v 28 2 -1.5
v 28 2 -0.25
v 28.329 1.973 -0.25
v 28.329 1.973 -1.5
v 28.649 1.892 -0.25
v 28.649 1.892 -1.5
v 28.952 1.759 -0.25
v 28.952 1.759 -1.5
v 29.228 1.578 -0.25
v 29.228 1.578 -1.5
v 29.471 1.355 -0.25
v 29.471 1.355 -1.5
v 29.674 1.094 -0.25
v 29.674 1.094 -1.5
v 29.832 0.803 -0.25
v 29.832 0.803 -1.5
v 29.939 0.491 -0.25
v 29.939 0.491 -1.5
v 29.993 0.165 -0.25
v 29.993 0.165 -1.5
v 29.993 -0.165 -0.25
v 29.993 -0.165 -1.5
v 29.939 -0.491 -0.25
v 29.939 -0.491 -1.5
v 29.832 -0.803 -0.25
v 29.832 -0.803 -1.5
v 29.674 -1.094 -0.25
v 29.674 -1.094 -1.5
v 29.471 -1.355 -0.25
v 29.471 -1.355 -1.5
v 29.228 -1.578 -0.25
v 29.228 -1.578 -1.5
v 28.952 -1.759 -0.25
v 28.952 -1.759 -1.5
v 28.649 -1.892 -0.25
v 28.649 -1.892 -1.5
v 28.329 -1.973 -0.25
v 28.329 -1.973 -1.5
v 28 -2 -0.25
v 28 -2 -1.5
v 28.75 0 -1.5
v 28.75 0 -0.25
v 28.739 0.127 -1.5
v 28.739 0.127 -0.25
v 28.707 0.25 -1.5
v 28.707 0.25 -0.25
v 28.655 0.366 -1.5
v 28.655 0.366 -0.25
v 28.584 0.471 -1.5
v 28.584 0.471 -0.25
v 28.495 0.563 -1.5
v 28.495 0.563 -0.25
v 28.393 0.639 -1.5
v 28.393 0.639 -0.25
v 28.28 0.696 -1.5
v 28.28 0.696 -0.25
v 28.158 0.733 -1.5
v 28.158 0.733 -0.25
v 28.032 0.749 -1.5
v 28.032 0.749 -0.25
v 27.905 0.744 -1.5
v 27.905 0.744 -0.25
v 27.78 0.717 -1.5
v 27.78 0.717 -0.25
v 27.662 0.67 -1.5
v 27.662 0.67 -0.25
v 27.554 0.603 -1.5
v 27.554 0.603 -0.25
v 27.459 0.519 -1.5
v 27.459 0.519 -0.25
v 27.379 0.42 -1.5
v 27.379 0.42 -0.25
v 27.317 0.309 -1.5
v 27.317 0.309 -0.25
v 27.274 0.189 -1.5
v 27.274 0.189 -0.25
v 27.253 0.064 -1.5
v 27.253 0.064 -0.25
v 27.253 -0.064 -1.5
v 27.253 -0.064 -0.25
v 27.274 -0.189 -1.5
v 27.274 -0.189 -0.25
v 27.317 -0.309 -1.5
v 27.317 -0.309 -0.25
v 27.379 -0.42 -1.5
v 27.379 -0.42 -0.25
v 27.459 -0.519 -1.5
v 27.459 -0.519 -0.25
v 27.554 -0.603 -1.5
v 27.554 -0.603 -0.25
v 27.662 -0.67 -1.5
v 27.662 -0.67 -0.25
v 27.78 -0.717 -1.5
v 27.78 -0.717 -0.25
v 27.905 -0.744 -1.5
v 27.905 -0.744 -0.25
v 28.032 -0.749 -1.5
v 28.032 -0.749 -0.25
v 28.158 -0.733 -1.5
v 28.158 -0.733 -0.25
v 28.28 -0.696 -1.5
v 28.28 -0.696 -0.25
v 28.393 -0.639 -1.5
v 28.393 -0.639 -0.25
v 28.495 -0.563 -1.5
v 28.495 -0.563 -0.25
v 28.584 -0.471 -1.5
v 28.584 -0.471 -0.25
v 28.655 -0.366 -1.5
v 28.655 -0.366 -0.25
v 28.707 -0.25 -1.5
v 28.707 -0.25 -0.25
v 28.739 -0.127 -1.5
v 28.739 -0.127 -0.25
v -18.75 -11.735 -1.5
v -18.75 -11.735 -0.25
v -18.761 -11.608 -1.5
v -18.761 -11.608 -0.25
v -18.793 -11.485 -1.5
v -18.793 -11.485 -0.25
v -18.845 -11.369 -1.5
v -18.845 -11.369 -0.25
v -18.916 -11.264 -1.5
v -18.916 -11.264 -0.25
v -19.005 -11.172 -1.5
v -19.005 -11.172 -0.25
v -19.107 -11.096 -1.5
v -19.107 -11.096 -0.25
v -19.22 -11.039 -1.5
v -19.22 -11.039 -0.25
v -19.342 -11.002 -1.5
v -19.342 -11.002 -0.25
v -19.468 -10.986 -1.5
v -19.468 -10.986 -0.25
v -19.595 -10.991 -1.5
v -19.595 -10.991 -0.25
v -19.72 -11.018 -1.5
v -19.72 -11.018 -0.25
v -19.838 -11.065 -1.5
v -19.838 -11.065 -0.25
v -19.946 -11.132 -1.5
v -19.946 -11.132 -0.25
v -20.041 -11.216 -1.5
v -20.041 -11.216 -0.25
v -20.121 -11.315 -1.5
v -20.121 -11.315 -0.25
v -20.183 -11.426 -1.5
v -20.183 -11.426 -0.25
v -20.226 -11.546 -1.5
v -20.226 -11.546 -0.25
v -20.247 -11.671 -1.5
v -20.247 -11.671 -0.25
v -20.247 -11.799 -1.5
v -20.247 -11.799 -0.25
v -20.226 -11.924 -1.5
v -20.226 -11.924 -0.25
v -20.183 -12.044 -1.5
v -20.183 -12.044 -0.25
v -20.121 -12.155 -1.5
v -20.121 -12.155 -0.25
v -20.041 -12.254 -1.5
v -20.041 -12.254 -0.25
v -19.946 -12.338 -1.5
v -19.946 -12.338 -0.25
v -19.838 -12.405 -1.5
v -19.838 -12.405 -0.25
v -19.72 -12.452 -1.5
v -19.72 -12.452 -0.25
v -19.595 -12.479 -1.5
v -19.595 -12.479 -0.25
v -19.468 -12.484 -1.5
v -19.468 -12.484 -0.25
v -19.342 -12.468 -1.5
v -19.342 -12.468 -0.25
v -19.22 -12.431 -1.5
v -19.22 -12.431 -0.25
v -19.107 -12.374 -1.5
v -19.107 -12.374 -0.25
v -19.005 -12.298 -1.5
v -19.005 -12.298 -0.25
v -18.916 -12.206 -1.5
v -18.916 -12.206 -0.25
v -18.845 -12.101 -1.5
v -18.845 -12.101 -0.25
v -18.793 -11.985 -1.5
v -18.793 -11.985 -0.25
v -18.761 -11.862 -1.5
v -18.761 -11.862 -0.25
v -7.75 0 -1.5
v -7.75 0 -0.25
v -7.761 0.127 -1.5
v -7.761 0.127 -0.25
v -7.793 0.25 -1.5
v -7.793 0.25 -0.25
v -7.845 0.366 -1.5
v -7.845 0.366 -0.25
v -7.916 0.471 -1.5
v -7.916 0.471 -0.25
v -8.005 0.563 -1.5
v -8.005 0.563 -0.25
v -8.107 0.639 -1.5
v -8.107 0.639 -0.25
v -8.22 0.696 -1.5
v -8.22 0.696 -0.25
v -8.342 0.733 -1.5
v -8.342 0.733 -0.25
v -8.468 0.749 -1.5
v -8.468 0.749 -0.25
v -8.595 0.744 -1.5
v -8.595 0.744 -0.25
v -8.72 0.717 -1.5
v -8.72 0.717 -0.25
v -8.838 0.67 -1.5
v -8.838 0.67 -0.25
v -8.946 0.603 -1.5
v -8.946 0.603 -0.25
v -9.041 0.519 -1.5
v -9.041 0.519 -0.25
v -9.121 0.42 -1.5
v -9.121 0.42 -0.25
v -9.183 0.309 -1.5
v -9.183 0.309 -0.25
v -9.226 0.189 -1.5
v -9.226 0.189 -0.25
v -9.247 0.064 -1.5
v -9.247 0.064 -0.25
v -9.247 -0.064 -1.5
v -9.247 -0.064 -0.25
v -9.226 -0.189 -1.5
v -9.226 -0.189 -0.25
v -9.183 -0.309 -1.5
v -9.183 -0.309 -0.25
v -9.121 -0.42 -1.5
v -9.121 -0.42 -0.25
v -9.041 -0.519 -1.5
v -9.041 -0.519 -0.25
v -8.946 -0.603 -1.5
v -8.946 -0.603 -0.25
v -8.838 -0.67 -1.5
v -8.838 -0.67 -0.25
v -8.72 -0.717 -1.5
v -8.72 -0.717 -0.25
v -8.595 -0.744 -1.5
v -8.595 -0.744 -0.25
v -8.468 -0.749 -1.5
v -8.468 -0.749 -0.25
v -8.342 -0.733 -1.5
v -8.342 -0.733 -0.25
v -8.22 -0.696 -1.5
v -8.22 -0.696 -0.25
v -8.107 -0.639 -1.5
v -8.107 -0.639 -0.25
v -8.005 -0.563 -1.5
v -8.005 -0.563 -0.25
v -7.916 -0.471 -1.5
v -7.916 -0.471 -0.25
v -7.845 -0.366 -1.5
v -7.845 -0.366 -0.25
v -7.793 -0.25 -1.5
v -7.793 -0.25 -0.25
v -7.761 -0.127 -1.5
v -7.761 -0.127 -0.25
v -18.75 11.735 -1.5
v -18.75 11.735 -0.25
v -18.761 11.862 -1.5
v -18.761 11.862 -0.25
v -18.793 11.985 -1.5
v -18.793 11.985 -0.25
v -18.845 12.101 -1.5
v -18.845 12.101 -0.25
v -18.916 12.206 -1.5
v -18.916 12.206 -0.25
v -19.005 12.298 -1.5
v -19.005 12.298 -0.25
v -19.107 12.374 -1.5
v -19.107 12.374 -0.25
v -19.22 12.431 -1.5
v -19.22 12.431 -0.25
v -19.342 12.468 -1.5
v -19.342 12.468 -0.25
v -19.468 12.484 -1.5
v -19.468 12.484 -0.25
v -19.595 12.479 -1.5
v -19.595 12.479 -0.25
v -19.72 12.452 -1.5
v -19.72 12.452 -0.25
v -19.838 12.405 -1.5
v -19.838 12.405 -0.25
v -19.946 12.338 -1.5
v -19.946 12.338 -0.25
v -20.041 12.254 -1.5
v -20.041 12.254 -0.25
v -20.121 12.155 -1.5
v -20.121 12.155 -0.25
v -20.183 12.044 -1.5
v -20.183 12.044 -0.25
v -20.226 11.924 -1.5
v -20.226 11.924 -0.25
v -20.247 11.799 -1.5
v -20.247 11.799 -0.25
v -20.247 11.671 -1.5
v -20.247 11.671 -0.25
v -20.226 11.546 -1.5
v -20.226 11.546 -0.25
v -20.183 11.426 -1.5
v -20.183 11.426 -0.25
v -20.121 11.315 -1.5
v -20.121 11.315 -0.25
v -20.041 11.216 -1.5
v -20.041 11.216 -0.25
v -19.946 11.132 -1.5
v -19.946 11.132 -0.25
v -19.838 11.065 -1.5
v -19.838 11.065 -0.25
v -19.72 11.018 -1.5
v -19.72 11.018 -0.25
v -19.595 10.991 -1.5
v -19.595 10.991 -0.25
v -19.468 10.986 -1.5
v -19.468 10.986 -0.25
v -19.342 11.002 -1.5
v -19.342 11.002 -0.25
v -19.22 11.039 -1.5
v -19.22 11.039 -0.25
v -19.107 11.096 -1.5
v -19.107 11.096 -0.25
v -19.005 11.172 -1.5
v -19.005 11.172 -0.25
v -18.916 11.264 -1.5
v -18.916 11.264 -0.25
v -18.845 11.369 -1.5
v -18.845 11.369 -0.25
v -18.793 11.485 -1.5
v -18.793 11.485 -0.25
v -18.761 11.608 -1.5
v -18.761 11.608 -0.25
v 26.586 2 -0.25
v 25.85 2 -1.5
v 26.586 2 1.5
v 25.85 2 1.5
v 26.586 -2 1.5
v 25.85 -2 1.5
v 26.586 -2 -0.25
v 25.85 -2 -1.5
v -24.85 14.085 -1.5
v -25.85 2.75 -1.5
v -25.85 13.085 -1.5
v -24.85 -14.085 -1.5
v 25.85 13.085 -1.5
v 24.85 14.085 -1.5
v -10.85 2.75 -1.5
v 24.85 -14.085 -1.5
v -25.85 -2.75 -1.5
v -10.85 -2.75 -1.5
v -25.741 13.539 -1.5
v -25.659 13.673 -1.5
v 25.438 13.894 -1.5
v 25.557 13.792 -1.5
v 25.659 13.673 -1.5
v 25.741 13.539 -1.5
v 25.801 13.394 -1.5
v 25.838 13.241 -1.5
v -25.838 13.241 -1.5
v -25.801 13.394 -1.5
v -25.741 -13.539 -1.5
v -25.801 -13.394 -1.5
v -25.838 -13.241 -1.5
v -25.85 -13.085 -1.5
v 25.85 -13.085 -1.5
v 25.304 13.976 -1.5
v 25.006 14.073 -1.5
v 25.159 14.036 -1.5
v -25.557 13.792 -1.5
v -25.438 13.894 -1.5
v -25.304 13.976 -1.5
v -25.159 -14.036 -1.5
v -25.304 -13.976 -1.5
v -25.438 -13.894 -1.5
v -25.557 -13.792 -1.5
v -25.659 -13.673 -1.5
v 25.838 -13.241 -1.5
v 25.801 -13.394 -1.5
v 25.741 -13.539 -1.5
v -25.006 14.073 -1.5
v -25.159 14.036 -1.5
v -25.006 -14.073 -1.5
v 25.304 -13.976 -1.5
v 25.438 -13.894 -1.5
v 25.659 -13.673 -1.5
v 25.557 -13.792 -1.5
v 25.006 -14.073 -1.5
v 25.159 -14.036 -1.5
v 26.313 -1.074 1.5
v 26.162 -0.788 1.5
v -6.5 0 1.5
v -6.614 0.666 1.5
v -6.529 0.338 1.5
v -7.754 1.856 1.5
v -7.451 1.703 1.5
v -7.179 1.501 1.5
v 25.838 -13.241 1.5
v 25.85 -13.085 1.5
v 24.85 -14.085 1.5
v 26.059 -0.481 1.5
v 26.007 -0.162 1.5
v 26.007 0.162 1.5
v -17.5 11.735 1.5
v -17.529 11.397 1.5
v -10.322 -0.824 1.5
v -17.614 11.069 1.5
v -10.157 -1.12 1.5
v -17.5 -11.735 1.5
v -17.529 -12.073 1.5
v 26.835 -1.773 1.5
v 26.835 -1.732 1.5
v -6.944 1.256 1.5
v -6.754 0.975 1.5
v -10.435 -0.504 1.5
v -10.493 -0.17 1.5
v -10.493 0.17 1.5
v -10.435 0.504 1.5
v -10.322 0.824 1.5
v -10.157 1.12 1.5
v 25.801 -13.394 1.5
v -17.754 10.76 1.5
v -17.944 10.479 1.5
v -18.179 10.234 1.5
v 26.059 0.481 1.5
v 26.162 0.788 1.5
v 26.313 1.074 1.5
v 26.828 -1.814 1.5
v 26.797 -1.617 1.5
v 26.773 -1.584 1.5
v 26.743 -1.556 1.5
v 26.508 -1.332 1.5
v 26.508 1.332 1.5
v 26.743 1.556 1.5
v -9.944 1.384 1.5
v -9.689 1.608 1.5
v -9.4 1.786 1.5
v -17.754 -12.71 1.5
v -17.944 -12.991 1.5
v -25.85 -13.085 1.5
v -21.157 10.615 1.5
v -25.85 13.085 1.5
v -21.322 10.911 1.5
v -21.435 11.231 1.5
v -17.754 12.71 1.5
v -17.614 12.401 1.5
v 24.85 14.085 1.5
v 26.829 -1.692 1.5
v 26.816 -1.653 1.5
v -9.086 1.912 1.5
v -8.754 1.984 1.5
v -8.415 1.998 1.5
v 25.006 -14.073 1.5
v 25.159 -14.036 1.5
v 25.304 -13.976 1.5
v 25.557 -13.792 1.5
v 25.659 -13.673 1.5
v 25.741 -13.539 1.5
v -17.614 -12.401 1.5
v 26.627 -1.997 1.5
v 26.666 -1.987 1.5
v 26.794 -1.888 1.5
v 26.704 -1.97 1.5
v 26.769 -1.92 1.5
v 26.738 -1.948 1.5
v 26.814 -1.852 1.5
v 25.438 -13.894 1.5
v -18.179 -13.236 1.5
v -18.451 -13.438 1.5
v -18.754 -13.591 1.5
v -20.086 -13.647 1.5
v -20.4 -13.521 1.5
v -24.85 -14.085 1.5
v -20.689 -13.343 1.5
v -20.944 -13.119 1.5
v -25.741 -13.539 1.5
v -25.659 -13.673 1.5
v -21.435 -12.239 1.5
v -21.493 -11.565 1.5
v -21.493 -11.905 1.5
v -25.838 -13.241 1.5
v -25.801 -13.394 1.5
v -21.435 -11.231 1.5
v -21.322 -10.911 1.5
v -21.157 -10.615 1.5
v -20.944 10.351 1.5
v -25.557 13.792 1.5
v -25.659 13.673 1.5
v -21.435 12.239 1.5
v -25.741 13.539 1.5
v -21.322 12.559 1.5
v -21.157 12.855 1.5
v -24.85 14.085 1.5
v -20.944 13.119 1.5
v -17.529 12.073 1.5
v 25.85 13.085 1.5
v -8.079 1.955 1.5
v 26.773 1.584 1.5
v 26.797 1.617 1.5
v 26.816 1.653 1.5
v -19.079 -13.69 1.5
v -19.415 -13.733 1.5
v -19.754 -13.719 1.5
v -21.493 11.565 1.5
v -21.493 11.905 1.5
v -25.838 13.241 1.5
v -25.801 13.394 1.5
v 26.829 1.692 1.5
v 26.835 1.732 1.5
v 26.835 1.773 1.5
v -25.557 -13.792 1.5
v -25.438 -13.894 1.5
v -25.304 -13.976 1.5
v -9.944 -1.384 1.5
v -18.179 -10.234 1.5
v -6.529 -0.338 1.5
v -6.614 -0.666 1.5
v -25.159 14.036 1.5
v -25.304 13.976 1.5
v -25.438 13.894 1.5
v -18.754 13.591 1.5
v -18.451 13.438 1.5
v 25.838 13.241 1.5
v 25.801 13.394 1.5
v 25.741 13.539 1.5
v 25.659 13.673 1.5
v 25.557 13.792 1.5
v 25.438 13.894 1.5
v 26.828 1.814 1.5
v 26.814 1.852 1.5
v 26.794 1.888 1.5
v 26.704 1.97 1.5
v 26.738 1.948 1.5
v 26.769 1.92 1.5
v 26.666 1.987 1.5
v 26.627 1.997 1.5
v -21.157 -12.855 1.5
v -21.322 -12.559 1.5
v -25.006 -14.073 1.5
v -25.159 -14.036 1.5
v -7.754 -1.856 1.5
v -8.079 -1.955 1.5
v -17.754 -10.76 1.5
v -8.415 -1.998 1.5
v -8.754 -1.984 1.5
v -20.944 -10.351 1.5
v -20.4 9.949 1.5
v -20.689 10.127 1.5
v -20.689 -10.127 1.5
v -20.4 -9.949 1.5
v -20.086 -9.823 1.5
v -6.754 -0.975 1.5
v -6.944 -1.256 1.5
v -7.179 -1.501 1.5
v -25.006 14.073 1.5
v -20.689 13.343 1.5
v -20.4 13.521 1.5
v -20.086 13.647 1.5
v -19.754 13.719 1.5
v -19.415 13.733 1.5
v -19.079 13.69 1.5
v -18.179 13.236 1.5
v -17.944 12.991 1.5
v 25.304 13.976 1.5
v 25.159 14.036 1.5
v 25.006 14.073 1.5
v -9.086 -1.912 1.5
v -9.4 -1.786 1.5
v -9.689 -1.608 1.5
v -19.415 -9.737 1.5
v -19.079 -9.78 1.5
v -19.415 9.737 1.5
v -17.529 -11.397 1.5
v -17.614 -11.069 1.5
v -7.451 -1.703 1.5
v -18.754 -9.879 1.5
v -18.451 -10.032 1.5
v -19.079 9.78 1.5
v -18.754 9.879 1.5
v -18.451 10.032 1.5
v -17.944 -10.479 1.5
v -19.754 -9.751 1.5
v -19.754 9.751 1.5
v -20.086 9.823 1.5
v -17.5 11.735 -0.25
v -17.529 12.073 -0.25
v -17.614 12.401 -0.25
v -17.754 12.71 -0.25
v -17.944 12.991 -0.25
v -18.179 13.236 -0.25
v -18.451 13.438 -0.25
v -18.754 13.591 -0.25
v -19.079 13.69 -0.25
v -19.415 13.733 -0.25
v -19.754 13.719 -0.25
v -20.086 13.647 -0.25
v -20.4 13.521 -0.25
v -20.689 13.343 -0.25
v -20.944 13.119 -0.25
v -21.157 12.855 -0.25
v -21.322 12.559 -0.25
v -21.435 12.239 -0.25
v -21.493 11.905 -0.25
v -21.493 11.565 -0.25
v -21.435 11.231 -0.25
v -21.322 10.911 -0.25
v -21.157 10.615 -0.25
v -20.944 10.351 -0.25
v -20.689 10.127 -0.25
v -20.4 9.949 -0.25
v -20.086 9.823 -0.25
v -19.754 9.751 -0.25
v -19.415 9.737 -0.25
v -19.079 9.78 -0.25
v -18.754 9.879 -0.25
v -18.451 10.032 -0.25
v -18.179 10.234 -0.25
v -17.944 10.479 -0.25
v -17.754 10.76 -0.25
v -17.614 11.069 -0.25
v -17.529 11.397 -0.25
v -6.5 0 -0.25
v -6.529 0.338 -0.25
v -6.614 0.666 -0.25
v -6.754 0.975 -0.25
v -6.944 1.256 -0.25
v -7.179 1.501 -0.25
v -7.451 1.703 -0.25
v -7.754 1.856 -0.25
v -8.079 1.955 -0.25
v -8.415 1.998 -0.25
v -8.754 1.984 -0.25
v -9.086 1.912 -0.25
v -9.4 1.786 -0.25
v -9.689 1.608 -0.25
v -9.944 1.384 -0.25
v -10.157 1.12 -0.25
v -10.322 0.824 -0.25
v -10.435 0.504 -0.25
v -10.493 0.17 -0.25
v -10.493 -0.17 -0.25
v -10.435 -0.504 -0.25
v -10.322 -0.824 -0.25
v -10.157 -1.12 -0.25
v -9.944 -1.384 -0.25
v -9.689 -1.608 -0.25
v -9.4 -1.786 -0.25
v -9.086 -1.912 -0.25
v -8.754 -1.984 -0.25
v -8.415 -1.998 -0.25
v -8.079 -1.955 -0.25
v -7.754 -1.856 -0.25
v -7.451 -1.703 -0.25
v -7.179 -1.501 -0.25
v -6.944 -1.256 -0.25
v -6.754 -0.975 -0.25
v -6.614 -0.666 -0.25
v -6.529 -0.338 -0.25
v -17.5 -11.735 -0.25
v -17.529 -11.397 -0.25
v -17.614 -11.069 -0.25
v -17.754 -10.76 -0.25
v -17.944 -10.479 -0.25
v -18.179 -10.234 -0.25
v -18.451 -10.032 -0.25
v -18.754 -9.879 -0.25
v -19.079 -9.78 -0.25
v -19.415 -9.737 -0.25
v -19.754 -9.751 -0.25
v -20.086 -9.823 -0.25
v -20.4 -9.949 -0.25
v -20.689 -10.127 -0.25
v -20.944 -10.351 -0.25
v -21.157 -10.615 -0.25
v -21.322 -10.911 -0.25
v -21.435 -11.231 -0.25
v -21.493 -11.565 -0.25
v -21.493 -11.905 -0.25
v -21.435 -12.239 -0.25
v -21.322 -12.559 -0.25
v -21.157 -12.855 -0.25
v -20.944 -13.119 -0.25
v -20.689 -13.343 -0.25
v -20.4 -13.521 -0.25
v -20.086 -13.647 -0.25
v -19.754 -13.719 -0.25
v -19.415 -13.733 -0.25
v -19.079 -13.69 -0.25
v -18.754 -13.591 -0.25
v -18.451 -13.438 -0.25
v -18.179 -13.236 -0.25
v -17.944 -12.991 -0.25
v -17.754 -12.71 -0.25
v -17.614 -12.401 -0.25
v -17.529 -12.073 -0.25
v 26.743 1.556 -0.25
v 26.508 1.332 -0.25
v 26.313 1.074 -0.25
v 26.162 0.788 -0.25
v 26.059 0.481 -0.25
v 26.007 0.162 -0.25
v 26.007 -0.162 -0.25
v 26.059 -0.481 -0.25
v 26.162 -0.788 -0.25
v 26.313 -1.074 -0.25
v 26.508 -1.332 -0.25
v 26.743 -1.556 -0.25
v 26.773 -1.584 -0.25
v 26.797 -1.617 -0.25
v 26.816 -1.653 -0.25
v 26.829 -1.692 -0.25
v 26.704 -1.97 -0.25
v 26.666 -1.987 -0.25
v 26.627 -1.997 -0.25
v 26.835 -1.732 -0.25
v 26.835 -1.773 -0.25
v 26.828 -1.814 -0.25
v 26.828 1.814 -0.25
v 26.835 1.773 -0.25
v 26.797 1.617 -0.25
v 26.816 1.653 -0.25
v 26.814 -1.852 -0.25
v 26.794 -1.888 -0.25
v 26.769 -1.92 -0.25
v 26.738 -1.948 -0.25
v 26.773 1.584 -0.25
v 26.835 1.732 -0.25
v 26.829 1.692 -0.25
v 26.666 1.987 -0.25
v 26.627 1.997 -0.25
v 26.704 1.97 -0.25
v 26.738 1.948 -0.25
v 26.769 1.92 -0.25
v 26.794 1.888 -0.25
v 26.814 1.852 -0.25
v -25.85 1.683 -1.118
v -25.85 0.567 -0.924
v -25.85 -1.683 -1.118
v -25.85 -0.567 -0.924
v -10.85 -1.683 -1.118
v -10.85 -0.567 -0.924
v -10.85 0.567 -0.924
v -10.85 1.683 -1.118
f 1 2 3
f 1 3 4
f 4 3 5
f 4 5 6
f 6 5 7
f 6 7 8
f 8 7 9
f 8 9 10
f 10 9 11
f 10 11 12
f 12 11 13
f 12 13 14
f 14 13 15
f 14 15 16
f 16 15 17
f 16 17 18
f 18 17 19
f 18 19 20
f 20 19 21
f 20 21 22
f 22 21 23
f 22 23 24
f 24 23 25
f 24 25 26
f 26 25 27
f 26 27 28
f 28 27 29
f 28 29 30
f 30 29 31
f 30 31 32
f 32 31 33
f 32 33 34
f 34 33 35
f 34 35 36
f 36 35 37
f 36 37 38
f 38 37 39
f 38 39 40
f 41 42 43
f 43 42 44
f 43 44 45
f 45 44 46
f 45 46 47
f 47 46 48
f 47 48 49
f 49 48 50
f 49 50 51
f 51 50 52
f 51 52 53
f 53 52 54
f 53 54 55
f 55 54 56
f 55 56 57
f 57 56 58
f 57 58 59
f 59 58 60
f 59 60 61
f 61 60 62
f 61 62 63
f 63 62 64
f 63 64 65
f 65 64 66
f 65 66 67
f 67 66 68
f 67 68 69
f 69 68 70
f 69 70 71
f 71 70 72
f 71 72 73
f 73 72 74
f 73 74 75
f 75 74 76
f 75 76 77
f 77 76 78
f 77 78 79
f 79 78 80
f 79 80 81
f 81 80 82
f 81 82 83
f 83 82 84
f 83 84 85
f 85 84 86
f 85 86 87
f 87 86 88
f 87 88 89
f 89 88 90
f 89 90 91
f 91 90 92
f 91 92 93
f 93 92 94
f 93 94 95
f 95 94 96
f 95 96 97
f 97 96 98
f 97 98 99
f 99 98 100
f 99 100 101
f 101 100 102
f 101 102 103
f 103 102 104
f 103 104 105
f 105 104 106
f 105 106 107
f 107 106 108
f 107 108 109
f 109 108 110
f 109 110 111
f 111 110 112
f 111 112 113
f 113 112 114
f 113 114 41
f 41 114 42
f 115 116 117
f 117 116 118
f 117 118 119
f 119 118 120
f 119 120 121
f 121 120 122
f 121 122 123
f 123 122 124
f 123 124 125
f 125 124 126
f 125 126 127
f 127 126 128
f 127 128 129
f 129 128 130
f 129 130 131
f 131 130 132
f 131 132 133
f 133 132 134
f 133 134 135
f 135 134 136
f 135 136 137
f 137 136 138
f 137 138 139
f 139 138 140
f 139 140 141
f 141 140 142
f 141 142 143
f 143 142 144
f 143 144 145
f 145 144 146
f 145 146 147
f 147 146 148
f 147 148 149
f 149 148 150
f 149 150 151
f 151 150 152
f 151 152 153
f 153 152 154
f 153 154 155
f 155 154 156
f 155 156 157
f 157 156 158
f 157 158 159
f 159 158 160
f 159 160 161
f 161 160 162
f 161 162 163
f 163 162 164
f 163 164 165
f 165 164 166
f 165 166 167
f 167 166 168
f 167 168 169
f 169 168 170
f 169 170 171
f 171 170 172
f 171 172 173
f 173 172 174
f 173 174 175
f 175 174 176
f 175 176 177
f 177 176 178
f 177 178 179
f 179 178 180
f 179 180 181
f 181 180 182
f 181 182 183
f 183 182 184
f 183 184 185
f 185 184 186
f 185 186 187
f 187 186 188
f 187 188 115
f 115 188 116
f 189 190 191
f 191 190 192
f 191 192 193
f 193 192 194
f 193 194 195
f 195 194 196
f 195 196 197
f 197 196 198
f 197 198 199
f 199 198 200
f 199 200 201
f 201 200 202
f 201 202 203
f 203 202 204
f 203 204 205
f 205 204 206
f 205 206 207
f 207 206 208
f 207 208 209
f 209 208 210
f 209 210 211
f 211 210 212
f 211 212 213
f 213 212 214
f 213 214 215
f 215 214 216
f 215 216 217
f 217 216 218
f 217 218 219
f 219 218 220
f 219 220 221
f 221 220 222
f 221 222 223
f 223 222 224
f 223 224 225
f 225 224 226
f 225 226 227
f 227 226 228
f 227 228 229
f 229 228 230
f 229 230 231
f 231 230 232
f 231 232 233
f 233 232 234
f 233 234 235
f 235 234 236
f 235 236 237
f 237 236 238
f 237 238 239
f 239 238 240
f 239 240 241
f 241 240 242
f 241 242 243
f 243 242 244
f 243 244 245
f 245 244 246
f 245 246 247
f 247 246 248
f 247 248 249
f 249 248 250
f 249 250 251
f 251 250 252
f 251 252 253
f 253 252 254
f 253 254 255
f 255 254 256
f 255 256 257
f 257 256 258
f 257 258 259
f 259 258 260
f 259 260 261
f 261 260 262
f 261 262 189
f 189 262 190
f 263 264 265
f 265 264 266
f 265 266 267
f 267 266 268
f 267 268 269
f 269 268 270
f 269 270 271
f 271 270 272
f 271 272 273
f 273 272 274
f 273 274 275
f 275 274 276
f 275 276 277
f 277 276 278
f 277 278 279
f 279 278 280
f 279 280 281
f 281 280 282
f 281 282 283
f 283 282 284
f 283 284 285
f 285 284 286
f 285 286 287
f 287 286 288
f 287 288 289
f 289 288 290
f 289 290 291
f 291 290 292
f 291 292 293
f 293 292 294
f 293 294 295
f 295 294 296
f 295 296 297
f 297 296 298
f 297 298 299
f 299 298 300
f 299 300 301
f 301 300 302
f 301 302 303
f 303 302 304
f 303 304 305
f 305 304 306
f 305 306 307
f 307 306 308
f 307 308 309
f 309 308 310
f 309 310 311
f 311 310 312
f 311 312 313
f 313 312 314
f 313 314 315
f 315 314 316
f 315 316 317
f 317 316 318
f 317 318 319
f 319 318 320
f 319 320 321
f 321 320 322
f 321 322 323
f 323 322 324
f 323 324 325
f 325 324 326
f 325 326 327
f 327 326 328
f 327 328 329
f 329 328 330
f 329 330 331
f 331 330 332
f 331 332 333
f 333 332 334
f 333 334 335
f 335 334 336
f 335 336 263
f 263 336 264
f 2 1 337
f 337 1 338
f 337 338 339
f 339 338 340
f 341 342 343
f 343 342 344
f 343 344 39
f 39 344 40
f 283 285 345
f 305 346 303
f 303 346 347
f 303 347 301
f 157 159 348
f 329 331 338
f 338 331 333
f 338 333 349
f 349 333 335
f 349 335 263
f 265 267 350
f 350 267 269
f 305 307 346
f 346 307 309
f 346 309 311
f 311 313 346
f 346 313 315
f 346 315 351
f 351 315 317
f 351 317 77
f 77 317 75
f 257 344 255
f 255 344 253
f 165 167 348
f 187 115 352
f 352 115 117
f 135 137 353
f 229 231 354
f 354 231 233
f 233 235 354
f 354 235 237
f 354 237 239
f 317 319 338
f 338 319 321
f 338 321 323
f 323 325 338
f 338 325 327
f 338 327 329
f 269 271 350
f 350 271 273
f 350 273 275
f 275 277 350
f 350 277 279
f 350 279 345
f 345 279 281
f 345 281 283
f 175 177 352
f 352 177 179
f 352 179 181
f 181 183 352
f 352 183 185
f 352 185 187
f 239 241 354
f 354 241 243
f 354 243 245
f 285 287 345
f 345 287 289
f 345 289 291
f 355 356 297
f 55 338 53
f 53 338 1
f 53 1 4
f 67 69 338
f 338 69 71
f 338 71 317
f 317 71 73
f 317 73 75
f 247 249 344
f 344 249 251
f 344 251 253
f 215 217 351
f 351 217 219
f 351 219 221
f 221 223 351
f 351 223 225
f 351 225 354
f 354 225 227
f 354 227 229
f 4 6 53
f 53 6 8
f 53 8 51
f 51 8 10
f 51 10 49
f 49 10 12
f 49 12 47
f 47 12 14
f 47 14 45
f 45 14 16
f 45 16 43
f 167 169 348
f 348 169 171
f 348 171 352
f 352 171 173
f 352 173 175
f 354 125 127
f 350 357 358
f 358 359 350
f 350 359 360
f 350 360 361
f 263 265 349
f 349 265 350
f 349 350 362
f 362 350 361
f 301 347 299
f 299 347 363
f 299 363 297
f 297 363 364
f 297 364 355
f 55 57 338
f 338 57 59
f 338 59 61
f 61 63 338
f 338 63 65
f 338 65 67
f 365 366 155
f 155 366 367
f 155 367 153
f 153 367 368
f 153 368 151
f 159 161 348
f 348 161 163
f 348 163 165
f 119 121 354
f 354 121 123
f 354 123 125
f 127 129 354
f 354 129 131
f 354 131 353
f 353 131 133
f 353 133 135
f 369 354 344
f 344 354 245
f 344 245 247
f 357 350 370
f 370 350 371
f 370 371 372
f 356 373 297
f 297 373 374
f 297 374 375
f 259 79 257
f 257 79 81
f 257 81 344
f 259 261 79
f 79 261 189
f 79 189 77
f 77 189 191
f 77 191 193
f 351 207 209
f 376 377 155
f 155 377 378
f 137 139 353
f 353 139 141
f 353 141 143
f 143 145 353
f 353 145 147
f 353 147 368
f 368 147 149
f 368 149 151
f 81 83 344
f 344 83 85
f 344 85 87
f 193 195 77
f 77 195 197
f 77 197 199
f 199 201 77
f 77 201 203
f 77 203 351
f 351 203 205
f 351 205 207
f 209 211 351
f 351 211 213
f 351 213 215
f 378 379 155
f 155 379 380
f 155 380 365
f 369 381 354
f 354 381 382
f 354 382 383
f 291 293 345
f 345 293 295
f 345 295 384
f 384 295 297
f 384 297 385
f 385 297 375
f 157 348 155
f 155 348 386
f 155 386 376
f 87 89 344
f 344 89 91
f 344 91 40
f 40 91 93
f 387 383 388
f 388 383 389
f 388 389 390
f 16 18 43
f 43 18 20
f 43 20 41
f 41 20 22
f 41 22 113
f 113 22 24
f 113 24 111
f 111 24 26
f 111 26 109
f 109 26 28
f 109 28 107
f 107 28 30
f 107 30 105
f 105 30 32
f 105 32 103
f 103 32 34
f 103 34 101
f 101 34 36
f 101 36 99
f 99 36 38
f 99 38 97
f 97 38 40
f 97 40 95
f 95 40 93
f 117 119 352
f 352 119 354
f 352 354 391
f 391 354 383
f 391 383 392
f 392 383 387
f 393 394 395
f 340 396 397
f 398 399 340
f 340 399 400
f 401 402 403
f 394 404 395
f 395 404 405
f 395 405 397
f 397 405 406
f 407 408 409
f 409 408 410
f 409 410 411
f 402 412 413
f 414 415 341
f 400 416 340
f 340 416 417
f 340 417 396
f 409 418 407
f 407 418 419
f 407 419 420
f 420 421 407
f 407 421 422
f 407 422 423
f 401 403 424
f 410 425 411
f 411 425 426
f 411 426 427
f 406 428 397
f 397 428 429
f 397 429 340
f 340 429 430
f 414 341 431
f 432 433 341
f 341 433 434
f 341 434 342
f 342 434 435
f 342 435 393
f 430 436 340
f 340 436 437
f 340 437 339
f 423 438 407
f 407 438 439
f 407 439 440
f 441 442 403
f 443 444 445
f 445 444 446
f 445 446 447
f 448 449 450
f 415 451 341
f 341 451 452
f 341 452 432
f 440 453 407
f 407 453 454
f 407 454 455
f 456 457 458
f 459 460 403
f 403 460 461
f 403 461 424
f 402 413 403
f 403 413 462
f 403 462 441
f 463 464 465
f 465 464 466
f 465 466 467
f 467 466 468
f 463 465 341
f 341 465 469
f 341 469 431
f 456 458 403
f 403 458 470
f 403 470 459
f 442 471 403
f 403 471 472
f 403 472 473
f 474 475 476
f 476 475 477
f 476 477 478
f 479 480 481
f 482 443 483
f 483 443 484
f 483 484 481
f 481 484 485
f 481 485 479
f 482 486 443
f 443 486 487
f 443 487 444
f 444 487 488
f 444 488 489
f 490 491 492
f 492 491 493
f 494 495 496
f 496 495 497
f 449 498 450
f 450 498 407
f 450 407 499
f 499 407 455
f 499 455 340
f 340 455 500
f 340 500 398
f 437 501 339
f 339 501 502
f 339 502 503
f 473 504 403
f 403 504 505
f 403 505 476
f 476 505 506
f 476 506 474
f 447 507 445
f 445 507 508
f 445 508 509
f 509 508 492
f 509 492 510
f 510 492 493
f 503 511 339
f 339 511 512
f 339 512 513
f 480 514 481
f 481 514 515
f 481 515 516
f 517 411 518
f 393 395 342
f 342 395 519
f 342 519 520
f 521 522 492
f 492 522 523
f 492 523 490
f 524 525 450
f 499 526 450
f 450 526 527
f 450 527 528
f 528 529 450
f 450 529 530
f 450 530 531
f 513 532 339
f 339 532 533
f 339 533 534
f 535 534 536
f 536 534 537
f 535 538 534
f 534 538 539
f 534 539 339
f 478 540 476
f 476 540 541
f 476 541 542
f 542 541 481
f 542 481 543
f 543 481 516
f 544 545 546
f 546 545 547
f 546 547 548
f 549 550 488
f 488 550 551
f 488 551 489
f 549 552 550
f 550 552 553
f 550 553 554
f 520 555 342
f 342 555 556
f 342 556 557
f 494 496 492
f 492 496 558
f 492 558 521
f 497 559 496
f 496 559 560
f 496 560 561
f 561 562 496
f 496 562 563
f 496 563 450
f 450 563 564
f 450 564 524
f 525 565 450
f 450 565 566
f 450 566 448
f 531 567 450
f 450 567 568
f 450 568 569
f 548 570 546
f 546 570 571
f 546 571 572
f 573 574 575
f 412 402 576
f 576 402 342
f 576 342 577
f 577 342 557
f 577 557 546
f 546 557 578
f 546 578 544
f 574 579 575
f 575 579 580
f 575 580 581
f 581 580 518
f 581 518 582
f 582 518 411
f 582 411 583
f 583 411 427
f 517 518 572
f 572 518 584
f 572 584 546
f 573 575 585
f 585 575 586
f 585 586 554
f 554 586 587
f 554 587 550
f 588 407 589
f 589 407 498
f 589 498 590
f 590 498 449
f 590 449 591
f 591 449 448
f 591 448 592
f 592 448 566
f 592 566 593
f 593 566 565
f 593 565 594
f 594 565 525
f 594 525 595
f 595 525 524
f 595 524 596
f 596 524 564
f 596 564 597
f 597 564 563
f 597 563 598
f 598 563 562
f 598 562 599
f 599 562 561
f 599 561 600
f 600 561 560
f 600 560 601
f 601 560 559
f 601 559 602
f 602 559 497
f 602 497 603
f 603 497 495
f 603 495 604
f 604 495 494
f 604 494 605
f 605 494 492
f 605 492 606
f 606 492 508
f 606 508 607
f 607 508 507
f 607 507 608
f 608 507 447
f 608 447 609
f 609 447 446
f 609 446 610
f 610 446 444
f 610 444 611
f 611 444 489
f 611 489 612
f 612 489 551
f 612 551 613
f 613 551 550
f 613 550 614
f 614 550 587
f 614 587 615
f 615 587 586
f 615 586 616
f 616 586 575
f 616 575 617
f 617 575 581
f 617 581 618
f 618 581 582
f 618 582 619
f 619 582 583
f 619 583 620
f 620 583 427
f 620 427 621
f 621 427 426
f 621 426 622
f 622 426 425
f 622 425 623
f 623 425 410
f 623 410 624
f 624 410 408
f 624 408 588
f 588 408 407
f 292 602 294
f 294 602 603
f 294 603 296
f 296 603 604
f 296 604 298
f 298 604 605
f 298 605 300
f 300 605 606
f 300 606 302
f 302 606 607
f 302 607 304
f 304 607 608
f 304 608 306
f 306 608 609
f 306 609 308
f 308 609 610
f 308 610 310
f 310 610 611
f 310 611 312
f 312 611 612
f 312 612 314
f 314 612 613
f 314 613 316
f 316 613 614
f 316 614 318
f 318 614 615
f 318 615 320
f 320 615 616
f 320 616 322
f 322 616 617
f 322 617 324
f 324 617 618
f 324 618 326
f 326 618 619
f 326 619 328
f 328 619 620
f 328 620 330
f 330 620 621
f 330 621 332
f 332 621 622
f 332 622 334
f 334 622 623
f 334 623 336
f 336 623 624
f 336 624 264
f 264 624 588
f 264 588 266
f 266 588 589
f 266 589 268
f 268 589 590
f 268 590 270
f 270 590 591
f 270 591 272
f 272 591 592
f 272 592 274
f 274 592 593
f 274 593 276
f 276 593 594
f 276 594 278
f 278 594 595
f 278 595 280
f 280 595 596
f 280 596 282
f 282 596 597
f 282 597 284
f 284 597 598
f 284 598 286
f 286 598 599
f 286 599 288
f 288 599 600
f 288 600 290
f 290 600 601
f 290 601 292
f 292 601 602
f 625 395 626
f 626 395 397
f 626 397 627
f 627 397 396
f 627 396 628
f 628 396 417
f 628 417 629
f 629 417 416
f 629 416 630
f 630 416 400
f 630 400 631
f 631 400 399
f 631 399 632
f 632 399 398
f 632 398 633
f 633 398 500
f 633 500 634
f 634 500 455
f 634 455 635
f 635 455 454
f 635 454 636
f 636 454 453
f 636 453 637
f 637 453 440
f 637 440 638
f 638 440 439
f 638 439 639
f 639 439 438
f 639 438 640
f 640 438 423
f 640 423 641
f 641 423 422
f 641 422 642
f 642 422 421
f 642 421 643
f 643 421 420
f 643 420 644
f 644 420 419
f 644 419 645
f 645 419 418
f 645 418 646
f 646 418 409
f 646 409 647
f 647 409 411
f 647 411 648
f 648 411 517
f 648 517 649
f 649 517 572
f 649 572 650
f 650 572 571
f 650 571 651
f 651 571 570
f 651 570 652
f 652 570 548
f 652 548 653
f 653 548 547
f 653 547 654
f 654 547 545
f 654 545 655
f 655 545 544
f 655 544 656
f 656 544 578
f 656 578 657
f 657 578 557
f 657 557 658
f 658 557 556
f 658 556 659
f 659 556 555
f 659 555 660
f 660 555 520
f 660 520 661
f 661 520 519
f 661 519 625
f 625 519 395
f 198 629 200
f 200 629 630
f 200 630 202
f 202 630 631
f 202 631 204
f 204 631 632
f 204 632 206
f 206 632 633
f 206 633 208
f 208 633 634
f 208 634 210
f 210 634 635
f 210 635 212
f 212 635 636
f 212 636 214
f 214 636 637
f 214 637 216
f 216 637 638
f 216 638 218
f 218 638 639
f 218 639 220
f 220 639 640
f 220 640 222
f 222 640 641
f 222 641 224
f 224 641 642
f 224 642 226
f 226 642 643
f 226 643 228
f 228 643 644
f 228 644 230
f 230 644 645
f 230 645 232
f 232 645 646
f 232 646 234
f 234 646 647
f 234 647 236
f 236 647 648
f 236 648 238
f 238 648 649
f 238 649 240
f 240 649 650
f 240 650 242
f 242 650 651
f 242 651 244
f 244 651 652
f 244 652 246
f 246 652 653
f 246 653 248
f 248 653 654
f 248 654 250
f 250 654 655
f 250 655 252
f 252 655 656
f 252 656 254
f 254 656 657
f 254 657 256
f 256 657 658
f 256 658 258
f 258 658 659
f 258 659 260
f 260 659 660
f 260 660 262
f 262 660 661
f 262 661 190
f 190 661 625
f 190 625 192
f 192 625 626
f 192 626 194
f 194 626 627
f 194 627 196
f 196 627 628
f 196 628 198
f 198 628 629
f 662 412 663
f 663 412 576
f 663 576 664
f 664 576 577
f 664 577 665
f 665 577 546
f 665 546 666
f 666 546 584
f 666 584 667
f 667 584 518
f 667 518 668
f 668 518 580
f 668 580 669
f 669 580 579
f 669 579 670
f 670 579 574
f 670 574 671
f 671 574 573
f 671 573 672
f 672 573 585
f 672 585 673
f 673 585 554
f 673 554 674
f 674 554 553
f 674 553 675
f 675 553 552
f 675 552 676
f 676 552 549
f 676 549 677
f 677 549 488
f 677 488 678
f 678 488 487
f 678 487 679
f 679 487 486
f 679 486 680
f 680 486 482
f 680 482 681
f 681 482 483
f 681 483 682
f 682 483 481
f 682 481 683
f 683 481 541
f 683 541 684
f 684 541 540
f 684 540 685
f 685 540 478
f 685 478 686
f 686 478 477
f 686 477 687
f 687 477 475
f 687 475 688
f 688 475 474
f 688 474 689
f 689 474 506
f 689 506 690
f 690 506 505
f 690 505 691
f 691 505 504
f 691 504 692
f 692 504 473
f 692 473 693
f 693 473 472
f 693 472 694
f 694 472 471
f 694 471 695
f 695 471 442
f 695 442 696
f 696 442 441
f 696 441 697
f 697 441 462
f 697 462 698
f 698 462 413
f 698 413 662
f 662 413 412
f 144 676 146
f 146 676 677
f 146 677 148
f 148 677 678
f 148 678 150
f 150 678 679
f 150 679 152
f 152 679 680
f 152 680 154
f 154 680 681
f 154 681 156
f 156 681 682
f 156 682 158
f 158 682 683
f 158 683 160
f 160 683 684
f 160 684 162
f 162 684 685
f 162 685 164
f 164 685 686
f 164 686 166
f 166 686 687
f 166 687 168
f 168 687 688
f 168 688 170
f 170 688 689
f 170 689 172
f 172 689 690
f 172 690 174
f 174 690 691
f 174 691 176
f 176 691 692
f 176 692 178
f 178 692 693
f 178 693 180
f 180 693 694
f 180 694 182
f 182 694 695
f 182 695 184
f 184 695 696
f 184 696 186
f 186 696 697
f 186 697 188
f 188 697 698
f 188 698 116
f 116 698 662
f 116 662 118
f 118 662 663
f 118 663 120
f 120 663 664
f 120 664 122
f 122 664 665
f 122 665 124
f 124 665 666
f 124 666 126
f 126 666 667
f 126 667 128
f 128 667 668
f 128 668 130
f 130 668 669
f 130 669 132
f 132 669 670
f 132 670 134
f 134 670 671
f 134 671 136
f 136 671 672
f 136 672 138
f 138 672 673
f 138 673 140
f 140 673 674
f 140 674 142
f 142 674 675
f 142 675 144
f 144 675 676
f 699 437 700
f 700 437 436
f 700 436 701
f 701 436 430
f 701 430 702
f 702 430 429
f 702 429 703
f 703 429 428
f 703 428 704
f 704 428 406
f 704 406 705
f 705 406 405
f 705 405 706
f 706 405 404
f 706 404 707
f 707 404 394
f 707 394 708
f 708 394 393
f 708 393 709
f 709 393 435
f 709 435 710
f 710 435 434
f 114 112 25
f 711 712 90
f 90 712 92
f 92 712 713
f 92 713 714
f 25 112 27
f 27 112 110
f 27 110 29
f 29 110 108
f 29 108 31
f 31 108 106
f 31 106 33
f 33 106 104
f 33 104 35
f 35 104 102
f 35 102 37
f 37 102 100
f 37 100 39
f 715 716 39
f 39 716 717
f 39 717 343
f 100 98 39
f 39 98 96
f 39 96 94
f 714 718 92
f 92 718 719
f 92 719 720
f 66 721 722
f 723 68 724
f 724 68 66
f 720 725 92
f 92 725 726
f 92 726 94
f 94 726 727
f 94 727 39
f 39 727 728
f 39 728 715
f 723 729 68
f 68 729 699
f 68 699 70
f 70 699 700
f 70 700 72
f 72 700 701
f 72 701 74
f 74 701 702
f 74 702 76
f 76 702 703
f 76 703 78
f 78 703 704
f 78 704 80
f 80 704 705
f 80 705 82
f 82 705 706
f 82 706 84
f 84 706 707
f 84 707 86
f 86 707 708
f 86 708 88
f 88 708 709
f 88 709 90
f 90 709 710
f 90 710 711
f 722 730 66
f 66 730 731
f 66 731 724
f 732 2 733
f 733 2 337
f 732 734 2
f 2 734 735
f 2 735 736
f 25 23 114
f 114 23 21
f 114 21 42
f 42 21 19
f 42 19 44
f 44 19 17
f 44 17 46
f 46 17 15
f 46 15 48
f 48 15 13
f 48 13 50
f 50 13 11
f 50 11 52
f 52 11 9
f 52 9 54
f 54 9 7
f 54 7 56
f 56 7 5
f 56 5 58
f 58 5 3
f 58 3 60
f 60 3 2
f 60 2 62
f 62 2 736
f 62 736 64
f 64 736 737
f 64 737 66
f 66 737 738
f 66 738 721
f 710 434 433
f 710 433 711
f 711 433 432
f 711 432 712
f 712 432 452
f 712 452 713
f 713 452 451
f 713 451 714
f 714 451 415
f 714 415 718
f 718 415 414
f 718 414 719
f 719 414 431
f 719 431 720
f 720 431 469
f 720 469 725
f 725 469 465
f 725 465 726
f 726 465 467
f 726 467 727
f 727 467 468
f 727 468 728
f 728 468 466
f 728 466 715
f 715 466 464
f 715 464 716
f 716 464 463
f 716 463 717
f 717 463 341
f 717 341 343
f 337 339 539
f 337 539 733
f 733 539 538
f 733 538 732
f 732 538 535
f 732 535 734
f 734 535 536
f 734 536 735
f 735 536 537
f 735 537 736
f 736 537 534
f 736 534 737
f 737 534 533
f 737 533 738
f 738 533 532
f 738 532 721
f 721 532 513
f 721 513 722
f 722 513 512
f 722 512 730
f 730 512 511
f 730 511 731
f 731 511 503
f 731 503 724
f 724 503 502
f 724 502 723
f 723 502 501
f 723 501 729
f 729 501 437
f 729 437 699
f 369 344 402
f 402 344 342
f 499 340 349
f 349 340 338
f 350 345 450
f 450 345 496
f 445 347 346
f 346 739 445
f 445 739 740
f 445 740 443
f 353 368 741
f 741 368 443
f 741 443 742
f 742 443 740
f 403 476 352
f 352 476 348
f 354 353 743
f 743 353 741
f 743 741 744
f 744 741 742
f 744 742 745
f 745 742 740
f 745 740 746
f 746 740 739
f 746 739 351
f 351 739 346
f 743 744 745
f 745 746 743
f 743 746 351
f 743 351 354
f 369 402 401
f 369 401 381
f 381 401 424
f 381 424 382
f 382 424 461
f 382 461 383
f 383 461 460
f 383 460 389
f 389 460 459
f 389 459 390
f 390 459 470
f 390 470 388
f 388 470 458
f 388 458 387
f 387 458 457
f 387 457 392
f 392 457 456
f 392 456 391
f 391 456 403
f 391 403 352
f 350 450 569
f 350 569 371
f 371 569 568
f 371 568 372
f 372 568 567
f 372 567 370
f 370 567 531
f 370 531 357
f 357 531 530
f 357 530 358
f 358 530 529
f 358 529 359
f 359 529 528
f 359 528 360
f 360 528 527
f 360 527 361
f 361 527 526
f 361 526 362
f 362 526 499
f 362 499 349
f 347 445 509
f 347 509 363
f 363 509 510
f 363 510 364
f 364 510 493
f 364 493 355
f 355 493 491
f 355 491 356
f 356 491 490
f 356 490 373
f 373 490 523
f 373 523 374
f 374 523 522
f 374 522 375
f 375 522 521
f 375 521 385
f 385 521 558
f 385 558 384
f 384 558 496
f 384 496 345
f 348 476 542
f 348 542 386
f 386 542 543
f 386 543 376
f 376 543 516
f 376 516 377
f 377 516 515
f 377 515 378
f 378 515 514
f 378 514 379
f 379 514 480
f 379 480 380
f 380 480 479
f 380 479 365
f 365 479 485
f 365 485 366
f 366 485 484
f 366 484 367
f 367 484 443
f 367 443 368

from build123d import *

# Parameters (mm, degrees)
BOSS_EXTRUDE1_DEPTH      = 1.5
BOSS_EXTRUDE1_DEPTH_BACK = 1.5
SKETCH2_R                = 0.7500000000000021
SKETCH2_R_2              = 0.7500000000000003
SKETCH2_R_3              = 0.750000000000002
CUT_EXTRUDE1_DEPTH       = 9.500000000000002
SKETCH3_R                = 1.9999999999999996
SKETCH3_R_2              = 0.7500000000000021
SKETCH3_R_3              = 2.0000000000000004
SKETCH3_R_4              = 0.7500000000000003
SKETCH3_R_5              = 2.000000000000003
SKETCH3_R_6              = 0.750000000000002
CUT_EXTRUDE2_DEPTH       = 1.75
FILLET1_R                = 0.25
CUT_EXTRUDE5_DEPTH       = 6.999999999999993
CUT_EXTRUDE6_DEPTH       = 15.000000000000004
FILLET2_R                = 1


with BuildPart() as part:
    # Sketch1 → Boss-Extrude1 (new, two sides: drawn at the far end of the back side and taken through both)
    with BuildSketch(Plane.XY.offset(-BOSS_EXTRUDE1_DEPTH_BACK)):
        with BuildLine():
            Line((-26.000000000000007, -14.235000000000003), (25.999999999999993, -14.234999999999996))
            Line((25.999999999999993, -14.234999999999996), (25.999999999999993, -2))
            Line((25.999999999999993, -2), (27.99999999999995, -2))
            ThreePointArc((27.99999999999995, -2.000000000000003), (29.999999999999996, -1.79e-15), (27.999999999999954, 2.000000000000003))
            Line((27.999999999999954, 2), (25.999999999999993, 2))
            Line((25.999999999999993, 2), (25.999999999999993, 14.235000000000003))
            Line((25.999999999999993, 14.235000000000003), (-26.000000000000007, 14.234999999999996))
            Line((-26.000000000000007, 14.234999999999996), (-26.000000000000007, -14.235000000000003))
        make_face()
    extrude(amount=BOSS_EXTRUDE1_DEPTH + BOSS_EXTRUDE1_DEPTH_BACK)

    # Sketch2 → Cut-Extrude1 (cut)
    with BuildSketch(Plane.XY.offset(1.5)):
        with Locations((-19.500000000000007, 11.735000000000005)):
            Circle(SKETCH2_R)
        with Locations((-8.500000000000004, 0)):
            Circle(SKETCH2_R_2)
        with Locations((-19.500000000000007, -11.734999999999996)):
            Circle(SKETCH2_R)
        with Locations((27.999999999999993, -4.3e-16)):
            Circle(SKETCH2_R_3)
    extrude(amount=-CUT_EXTRUDE1_DEPTH, mode=Mode.SUBTRACT)

    # Sketch3 → Cut-Extrude2 (cut)
    # profile 1 of 4: a face of its own
    with BuildSketch(Plane.XY.offset(1.5)):
        with Locations((-19.500000000000007, 11.735000000000005)):
            Circle(SKETCH3_R)
        with Locations((-19.500000000000007, 11.735000000000005)):
            Circle(SKETCH3_R_2, mode=Mode.SUBTRACT)
    # profile 2 of 4: a face of its own
    with BuildSketch(Plane.XY.offset(1.5)):
        with Locations((-8.500000000000004, 0)):
            Circle(SKETCH3_R_3)
        with Locations((-8.500000000000004, 0)):
            Circle(SKETCH3_R_4, mode=Mode.SUBTRACT)
    # profile 3 of 4: a face of its own
    with BuildSketch(Plane.XY.offset(1.5)):
        with Locations((-19.500000000000007, -11.734999999999996)):
            Circle(SKETCH3_R)
        with Locations((-19.500000000000007, -11.734999999999996)):
            Circle(SKETCH3_R_2, mode=Mode.SUBTRACT)
    # profile 4 of 4: a face of its own
    with BuildSketch(Plane.XY.offset(1.5)):
        with Locations((27.999999999999993, -4.3e-16)):
            Circle(SKETCH3_R_5)
        with Locations((27.999999999999993, -4.3e-16)):
            Circle(SKETCH3_R_6, mode=Mode.SUBTRACT)
    extrude(amount=-CUT_EXTRUDE2_DEPTH, mode=Mode.SUBTRACT)

    # Fillet1
    fillet1_edges = [part.edges().sort_by_distance(p)[0] for p in [
        (27.99999999999995, -2.0000000000000018, 0.625),
        (27.999999999999954, 2.000000000000001, 0.625),
    ]]
    fillet(fillet1_edges, radius=FILLET1_R)

    # Sketch7 → Cut-Extrude5 (cut)
    with BuildSketch(Plane.XY.offset(1.5)):
        Polygon((25.999999999999993, -14.234999999999996), (25.999999999999993, -2), (25.84999999999999, -2), (25.84999999999999, -14.084999999999996), (-25.85, -14.084999999999999), (-25.850000000000005, 14.084999999999994), (25.84999999999999, 14.085000000000003), (25.84999999999999, 2), (25.999999999999993, 2), (25.999999999999993, 14.235000000000003), (-26.000000000000007, 14.234999999999996), (-26.000000000000007, -14.235000000000003), align=None)
    extrude(amount=-CUT_EXTRUDE5_DEPTH, mode=Mode.SUBTRACT)

    # Sketch8 → Cut-Extrude6 (cut)
    with BuildSketch(Plane.ZY.offset(25.850000000000005)):
        with BuildLine():
            Line((-1.5000000000000318, 2.7495454169736466), (-1.5000000000000313, -2.7495454169736395))
            ThreePointArc((-1.5000000000000568, -2.749545416973628), (-0.8999999999999995, 3.07e-15), (-1.5000000000000577, 2.7495454169736337))
        make_face()
    extrude(amount=-CUT_EXTRUDE6_DEPTH, mode=Mode.SUBTRACT)

    # Fillet2
    fillet2_edges = [part.edges().sort_by_distance(p)[0] for p in [
        (25.849999999999987, -14.084999999999996, 0),
        (25.84999999999999, 14.085000000000003, 0),
        (-25.850000000000005, 14.084999999999994, 0),
        (-25.85, -14.085, 0),
    ]]
    fillet(fillet2_edges, radius=FILLET2_R)


solid = part.part
